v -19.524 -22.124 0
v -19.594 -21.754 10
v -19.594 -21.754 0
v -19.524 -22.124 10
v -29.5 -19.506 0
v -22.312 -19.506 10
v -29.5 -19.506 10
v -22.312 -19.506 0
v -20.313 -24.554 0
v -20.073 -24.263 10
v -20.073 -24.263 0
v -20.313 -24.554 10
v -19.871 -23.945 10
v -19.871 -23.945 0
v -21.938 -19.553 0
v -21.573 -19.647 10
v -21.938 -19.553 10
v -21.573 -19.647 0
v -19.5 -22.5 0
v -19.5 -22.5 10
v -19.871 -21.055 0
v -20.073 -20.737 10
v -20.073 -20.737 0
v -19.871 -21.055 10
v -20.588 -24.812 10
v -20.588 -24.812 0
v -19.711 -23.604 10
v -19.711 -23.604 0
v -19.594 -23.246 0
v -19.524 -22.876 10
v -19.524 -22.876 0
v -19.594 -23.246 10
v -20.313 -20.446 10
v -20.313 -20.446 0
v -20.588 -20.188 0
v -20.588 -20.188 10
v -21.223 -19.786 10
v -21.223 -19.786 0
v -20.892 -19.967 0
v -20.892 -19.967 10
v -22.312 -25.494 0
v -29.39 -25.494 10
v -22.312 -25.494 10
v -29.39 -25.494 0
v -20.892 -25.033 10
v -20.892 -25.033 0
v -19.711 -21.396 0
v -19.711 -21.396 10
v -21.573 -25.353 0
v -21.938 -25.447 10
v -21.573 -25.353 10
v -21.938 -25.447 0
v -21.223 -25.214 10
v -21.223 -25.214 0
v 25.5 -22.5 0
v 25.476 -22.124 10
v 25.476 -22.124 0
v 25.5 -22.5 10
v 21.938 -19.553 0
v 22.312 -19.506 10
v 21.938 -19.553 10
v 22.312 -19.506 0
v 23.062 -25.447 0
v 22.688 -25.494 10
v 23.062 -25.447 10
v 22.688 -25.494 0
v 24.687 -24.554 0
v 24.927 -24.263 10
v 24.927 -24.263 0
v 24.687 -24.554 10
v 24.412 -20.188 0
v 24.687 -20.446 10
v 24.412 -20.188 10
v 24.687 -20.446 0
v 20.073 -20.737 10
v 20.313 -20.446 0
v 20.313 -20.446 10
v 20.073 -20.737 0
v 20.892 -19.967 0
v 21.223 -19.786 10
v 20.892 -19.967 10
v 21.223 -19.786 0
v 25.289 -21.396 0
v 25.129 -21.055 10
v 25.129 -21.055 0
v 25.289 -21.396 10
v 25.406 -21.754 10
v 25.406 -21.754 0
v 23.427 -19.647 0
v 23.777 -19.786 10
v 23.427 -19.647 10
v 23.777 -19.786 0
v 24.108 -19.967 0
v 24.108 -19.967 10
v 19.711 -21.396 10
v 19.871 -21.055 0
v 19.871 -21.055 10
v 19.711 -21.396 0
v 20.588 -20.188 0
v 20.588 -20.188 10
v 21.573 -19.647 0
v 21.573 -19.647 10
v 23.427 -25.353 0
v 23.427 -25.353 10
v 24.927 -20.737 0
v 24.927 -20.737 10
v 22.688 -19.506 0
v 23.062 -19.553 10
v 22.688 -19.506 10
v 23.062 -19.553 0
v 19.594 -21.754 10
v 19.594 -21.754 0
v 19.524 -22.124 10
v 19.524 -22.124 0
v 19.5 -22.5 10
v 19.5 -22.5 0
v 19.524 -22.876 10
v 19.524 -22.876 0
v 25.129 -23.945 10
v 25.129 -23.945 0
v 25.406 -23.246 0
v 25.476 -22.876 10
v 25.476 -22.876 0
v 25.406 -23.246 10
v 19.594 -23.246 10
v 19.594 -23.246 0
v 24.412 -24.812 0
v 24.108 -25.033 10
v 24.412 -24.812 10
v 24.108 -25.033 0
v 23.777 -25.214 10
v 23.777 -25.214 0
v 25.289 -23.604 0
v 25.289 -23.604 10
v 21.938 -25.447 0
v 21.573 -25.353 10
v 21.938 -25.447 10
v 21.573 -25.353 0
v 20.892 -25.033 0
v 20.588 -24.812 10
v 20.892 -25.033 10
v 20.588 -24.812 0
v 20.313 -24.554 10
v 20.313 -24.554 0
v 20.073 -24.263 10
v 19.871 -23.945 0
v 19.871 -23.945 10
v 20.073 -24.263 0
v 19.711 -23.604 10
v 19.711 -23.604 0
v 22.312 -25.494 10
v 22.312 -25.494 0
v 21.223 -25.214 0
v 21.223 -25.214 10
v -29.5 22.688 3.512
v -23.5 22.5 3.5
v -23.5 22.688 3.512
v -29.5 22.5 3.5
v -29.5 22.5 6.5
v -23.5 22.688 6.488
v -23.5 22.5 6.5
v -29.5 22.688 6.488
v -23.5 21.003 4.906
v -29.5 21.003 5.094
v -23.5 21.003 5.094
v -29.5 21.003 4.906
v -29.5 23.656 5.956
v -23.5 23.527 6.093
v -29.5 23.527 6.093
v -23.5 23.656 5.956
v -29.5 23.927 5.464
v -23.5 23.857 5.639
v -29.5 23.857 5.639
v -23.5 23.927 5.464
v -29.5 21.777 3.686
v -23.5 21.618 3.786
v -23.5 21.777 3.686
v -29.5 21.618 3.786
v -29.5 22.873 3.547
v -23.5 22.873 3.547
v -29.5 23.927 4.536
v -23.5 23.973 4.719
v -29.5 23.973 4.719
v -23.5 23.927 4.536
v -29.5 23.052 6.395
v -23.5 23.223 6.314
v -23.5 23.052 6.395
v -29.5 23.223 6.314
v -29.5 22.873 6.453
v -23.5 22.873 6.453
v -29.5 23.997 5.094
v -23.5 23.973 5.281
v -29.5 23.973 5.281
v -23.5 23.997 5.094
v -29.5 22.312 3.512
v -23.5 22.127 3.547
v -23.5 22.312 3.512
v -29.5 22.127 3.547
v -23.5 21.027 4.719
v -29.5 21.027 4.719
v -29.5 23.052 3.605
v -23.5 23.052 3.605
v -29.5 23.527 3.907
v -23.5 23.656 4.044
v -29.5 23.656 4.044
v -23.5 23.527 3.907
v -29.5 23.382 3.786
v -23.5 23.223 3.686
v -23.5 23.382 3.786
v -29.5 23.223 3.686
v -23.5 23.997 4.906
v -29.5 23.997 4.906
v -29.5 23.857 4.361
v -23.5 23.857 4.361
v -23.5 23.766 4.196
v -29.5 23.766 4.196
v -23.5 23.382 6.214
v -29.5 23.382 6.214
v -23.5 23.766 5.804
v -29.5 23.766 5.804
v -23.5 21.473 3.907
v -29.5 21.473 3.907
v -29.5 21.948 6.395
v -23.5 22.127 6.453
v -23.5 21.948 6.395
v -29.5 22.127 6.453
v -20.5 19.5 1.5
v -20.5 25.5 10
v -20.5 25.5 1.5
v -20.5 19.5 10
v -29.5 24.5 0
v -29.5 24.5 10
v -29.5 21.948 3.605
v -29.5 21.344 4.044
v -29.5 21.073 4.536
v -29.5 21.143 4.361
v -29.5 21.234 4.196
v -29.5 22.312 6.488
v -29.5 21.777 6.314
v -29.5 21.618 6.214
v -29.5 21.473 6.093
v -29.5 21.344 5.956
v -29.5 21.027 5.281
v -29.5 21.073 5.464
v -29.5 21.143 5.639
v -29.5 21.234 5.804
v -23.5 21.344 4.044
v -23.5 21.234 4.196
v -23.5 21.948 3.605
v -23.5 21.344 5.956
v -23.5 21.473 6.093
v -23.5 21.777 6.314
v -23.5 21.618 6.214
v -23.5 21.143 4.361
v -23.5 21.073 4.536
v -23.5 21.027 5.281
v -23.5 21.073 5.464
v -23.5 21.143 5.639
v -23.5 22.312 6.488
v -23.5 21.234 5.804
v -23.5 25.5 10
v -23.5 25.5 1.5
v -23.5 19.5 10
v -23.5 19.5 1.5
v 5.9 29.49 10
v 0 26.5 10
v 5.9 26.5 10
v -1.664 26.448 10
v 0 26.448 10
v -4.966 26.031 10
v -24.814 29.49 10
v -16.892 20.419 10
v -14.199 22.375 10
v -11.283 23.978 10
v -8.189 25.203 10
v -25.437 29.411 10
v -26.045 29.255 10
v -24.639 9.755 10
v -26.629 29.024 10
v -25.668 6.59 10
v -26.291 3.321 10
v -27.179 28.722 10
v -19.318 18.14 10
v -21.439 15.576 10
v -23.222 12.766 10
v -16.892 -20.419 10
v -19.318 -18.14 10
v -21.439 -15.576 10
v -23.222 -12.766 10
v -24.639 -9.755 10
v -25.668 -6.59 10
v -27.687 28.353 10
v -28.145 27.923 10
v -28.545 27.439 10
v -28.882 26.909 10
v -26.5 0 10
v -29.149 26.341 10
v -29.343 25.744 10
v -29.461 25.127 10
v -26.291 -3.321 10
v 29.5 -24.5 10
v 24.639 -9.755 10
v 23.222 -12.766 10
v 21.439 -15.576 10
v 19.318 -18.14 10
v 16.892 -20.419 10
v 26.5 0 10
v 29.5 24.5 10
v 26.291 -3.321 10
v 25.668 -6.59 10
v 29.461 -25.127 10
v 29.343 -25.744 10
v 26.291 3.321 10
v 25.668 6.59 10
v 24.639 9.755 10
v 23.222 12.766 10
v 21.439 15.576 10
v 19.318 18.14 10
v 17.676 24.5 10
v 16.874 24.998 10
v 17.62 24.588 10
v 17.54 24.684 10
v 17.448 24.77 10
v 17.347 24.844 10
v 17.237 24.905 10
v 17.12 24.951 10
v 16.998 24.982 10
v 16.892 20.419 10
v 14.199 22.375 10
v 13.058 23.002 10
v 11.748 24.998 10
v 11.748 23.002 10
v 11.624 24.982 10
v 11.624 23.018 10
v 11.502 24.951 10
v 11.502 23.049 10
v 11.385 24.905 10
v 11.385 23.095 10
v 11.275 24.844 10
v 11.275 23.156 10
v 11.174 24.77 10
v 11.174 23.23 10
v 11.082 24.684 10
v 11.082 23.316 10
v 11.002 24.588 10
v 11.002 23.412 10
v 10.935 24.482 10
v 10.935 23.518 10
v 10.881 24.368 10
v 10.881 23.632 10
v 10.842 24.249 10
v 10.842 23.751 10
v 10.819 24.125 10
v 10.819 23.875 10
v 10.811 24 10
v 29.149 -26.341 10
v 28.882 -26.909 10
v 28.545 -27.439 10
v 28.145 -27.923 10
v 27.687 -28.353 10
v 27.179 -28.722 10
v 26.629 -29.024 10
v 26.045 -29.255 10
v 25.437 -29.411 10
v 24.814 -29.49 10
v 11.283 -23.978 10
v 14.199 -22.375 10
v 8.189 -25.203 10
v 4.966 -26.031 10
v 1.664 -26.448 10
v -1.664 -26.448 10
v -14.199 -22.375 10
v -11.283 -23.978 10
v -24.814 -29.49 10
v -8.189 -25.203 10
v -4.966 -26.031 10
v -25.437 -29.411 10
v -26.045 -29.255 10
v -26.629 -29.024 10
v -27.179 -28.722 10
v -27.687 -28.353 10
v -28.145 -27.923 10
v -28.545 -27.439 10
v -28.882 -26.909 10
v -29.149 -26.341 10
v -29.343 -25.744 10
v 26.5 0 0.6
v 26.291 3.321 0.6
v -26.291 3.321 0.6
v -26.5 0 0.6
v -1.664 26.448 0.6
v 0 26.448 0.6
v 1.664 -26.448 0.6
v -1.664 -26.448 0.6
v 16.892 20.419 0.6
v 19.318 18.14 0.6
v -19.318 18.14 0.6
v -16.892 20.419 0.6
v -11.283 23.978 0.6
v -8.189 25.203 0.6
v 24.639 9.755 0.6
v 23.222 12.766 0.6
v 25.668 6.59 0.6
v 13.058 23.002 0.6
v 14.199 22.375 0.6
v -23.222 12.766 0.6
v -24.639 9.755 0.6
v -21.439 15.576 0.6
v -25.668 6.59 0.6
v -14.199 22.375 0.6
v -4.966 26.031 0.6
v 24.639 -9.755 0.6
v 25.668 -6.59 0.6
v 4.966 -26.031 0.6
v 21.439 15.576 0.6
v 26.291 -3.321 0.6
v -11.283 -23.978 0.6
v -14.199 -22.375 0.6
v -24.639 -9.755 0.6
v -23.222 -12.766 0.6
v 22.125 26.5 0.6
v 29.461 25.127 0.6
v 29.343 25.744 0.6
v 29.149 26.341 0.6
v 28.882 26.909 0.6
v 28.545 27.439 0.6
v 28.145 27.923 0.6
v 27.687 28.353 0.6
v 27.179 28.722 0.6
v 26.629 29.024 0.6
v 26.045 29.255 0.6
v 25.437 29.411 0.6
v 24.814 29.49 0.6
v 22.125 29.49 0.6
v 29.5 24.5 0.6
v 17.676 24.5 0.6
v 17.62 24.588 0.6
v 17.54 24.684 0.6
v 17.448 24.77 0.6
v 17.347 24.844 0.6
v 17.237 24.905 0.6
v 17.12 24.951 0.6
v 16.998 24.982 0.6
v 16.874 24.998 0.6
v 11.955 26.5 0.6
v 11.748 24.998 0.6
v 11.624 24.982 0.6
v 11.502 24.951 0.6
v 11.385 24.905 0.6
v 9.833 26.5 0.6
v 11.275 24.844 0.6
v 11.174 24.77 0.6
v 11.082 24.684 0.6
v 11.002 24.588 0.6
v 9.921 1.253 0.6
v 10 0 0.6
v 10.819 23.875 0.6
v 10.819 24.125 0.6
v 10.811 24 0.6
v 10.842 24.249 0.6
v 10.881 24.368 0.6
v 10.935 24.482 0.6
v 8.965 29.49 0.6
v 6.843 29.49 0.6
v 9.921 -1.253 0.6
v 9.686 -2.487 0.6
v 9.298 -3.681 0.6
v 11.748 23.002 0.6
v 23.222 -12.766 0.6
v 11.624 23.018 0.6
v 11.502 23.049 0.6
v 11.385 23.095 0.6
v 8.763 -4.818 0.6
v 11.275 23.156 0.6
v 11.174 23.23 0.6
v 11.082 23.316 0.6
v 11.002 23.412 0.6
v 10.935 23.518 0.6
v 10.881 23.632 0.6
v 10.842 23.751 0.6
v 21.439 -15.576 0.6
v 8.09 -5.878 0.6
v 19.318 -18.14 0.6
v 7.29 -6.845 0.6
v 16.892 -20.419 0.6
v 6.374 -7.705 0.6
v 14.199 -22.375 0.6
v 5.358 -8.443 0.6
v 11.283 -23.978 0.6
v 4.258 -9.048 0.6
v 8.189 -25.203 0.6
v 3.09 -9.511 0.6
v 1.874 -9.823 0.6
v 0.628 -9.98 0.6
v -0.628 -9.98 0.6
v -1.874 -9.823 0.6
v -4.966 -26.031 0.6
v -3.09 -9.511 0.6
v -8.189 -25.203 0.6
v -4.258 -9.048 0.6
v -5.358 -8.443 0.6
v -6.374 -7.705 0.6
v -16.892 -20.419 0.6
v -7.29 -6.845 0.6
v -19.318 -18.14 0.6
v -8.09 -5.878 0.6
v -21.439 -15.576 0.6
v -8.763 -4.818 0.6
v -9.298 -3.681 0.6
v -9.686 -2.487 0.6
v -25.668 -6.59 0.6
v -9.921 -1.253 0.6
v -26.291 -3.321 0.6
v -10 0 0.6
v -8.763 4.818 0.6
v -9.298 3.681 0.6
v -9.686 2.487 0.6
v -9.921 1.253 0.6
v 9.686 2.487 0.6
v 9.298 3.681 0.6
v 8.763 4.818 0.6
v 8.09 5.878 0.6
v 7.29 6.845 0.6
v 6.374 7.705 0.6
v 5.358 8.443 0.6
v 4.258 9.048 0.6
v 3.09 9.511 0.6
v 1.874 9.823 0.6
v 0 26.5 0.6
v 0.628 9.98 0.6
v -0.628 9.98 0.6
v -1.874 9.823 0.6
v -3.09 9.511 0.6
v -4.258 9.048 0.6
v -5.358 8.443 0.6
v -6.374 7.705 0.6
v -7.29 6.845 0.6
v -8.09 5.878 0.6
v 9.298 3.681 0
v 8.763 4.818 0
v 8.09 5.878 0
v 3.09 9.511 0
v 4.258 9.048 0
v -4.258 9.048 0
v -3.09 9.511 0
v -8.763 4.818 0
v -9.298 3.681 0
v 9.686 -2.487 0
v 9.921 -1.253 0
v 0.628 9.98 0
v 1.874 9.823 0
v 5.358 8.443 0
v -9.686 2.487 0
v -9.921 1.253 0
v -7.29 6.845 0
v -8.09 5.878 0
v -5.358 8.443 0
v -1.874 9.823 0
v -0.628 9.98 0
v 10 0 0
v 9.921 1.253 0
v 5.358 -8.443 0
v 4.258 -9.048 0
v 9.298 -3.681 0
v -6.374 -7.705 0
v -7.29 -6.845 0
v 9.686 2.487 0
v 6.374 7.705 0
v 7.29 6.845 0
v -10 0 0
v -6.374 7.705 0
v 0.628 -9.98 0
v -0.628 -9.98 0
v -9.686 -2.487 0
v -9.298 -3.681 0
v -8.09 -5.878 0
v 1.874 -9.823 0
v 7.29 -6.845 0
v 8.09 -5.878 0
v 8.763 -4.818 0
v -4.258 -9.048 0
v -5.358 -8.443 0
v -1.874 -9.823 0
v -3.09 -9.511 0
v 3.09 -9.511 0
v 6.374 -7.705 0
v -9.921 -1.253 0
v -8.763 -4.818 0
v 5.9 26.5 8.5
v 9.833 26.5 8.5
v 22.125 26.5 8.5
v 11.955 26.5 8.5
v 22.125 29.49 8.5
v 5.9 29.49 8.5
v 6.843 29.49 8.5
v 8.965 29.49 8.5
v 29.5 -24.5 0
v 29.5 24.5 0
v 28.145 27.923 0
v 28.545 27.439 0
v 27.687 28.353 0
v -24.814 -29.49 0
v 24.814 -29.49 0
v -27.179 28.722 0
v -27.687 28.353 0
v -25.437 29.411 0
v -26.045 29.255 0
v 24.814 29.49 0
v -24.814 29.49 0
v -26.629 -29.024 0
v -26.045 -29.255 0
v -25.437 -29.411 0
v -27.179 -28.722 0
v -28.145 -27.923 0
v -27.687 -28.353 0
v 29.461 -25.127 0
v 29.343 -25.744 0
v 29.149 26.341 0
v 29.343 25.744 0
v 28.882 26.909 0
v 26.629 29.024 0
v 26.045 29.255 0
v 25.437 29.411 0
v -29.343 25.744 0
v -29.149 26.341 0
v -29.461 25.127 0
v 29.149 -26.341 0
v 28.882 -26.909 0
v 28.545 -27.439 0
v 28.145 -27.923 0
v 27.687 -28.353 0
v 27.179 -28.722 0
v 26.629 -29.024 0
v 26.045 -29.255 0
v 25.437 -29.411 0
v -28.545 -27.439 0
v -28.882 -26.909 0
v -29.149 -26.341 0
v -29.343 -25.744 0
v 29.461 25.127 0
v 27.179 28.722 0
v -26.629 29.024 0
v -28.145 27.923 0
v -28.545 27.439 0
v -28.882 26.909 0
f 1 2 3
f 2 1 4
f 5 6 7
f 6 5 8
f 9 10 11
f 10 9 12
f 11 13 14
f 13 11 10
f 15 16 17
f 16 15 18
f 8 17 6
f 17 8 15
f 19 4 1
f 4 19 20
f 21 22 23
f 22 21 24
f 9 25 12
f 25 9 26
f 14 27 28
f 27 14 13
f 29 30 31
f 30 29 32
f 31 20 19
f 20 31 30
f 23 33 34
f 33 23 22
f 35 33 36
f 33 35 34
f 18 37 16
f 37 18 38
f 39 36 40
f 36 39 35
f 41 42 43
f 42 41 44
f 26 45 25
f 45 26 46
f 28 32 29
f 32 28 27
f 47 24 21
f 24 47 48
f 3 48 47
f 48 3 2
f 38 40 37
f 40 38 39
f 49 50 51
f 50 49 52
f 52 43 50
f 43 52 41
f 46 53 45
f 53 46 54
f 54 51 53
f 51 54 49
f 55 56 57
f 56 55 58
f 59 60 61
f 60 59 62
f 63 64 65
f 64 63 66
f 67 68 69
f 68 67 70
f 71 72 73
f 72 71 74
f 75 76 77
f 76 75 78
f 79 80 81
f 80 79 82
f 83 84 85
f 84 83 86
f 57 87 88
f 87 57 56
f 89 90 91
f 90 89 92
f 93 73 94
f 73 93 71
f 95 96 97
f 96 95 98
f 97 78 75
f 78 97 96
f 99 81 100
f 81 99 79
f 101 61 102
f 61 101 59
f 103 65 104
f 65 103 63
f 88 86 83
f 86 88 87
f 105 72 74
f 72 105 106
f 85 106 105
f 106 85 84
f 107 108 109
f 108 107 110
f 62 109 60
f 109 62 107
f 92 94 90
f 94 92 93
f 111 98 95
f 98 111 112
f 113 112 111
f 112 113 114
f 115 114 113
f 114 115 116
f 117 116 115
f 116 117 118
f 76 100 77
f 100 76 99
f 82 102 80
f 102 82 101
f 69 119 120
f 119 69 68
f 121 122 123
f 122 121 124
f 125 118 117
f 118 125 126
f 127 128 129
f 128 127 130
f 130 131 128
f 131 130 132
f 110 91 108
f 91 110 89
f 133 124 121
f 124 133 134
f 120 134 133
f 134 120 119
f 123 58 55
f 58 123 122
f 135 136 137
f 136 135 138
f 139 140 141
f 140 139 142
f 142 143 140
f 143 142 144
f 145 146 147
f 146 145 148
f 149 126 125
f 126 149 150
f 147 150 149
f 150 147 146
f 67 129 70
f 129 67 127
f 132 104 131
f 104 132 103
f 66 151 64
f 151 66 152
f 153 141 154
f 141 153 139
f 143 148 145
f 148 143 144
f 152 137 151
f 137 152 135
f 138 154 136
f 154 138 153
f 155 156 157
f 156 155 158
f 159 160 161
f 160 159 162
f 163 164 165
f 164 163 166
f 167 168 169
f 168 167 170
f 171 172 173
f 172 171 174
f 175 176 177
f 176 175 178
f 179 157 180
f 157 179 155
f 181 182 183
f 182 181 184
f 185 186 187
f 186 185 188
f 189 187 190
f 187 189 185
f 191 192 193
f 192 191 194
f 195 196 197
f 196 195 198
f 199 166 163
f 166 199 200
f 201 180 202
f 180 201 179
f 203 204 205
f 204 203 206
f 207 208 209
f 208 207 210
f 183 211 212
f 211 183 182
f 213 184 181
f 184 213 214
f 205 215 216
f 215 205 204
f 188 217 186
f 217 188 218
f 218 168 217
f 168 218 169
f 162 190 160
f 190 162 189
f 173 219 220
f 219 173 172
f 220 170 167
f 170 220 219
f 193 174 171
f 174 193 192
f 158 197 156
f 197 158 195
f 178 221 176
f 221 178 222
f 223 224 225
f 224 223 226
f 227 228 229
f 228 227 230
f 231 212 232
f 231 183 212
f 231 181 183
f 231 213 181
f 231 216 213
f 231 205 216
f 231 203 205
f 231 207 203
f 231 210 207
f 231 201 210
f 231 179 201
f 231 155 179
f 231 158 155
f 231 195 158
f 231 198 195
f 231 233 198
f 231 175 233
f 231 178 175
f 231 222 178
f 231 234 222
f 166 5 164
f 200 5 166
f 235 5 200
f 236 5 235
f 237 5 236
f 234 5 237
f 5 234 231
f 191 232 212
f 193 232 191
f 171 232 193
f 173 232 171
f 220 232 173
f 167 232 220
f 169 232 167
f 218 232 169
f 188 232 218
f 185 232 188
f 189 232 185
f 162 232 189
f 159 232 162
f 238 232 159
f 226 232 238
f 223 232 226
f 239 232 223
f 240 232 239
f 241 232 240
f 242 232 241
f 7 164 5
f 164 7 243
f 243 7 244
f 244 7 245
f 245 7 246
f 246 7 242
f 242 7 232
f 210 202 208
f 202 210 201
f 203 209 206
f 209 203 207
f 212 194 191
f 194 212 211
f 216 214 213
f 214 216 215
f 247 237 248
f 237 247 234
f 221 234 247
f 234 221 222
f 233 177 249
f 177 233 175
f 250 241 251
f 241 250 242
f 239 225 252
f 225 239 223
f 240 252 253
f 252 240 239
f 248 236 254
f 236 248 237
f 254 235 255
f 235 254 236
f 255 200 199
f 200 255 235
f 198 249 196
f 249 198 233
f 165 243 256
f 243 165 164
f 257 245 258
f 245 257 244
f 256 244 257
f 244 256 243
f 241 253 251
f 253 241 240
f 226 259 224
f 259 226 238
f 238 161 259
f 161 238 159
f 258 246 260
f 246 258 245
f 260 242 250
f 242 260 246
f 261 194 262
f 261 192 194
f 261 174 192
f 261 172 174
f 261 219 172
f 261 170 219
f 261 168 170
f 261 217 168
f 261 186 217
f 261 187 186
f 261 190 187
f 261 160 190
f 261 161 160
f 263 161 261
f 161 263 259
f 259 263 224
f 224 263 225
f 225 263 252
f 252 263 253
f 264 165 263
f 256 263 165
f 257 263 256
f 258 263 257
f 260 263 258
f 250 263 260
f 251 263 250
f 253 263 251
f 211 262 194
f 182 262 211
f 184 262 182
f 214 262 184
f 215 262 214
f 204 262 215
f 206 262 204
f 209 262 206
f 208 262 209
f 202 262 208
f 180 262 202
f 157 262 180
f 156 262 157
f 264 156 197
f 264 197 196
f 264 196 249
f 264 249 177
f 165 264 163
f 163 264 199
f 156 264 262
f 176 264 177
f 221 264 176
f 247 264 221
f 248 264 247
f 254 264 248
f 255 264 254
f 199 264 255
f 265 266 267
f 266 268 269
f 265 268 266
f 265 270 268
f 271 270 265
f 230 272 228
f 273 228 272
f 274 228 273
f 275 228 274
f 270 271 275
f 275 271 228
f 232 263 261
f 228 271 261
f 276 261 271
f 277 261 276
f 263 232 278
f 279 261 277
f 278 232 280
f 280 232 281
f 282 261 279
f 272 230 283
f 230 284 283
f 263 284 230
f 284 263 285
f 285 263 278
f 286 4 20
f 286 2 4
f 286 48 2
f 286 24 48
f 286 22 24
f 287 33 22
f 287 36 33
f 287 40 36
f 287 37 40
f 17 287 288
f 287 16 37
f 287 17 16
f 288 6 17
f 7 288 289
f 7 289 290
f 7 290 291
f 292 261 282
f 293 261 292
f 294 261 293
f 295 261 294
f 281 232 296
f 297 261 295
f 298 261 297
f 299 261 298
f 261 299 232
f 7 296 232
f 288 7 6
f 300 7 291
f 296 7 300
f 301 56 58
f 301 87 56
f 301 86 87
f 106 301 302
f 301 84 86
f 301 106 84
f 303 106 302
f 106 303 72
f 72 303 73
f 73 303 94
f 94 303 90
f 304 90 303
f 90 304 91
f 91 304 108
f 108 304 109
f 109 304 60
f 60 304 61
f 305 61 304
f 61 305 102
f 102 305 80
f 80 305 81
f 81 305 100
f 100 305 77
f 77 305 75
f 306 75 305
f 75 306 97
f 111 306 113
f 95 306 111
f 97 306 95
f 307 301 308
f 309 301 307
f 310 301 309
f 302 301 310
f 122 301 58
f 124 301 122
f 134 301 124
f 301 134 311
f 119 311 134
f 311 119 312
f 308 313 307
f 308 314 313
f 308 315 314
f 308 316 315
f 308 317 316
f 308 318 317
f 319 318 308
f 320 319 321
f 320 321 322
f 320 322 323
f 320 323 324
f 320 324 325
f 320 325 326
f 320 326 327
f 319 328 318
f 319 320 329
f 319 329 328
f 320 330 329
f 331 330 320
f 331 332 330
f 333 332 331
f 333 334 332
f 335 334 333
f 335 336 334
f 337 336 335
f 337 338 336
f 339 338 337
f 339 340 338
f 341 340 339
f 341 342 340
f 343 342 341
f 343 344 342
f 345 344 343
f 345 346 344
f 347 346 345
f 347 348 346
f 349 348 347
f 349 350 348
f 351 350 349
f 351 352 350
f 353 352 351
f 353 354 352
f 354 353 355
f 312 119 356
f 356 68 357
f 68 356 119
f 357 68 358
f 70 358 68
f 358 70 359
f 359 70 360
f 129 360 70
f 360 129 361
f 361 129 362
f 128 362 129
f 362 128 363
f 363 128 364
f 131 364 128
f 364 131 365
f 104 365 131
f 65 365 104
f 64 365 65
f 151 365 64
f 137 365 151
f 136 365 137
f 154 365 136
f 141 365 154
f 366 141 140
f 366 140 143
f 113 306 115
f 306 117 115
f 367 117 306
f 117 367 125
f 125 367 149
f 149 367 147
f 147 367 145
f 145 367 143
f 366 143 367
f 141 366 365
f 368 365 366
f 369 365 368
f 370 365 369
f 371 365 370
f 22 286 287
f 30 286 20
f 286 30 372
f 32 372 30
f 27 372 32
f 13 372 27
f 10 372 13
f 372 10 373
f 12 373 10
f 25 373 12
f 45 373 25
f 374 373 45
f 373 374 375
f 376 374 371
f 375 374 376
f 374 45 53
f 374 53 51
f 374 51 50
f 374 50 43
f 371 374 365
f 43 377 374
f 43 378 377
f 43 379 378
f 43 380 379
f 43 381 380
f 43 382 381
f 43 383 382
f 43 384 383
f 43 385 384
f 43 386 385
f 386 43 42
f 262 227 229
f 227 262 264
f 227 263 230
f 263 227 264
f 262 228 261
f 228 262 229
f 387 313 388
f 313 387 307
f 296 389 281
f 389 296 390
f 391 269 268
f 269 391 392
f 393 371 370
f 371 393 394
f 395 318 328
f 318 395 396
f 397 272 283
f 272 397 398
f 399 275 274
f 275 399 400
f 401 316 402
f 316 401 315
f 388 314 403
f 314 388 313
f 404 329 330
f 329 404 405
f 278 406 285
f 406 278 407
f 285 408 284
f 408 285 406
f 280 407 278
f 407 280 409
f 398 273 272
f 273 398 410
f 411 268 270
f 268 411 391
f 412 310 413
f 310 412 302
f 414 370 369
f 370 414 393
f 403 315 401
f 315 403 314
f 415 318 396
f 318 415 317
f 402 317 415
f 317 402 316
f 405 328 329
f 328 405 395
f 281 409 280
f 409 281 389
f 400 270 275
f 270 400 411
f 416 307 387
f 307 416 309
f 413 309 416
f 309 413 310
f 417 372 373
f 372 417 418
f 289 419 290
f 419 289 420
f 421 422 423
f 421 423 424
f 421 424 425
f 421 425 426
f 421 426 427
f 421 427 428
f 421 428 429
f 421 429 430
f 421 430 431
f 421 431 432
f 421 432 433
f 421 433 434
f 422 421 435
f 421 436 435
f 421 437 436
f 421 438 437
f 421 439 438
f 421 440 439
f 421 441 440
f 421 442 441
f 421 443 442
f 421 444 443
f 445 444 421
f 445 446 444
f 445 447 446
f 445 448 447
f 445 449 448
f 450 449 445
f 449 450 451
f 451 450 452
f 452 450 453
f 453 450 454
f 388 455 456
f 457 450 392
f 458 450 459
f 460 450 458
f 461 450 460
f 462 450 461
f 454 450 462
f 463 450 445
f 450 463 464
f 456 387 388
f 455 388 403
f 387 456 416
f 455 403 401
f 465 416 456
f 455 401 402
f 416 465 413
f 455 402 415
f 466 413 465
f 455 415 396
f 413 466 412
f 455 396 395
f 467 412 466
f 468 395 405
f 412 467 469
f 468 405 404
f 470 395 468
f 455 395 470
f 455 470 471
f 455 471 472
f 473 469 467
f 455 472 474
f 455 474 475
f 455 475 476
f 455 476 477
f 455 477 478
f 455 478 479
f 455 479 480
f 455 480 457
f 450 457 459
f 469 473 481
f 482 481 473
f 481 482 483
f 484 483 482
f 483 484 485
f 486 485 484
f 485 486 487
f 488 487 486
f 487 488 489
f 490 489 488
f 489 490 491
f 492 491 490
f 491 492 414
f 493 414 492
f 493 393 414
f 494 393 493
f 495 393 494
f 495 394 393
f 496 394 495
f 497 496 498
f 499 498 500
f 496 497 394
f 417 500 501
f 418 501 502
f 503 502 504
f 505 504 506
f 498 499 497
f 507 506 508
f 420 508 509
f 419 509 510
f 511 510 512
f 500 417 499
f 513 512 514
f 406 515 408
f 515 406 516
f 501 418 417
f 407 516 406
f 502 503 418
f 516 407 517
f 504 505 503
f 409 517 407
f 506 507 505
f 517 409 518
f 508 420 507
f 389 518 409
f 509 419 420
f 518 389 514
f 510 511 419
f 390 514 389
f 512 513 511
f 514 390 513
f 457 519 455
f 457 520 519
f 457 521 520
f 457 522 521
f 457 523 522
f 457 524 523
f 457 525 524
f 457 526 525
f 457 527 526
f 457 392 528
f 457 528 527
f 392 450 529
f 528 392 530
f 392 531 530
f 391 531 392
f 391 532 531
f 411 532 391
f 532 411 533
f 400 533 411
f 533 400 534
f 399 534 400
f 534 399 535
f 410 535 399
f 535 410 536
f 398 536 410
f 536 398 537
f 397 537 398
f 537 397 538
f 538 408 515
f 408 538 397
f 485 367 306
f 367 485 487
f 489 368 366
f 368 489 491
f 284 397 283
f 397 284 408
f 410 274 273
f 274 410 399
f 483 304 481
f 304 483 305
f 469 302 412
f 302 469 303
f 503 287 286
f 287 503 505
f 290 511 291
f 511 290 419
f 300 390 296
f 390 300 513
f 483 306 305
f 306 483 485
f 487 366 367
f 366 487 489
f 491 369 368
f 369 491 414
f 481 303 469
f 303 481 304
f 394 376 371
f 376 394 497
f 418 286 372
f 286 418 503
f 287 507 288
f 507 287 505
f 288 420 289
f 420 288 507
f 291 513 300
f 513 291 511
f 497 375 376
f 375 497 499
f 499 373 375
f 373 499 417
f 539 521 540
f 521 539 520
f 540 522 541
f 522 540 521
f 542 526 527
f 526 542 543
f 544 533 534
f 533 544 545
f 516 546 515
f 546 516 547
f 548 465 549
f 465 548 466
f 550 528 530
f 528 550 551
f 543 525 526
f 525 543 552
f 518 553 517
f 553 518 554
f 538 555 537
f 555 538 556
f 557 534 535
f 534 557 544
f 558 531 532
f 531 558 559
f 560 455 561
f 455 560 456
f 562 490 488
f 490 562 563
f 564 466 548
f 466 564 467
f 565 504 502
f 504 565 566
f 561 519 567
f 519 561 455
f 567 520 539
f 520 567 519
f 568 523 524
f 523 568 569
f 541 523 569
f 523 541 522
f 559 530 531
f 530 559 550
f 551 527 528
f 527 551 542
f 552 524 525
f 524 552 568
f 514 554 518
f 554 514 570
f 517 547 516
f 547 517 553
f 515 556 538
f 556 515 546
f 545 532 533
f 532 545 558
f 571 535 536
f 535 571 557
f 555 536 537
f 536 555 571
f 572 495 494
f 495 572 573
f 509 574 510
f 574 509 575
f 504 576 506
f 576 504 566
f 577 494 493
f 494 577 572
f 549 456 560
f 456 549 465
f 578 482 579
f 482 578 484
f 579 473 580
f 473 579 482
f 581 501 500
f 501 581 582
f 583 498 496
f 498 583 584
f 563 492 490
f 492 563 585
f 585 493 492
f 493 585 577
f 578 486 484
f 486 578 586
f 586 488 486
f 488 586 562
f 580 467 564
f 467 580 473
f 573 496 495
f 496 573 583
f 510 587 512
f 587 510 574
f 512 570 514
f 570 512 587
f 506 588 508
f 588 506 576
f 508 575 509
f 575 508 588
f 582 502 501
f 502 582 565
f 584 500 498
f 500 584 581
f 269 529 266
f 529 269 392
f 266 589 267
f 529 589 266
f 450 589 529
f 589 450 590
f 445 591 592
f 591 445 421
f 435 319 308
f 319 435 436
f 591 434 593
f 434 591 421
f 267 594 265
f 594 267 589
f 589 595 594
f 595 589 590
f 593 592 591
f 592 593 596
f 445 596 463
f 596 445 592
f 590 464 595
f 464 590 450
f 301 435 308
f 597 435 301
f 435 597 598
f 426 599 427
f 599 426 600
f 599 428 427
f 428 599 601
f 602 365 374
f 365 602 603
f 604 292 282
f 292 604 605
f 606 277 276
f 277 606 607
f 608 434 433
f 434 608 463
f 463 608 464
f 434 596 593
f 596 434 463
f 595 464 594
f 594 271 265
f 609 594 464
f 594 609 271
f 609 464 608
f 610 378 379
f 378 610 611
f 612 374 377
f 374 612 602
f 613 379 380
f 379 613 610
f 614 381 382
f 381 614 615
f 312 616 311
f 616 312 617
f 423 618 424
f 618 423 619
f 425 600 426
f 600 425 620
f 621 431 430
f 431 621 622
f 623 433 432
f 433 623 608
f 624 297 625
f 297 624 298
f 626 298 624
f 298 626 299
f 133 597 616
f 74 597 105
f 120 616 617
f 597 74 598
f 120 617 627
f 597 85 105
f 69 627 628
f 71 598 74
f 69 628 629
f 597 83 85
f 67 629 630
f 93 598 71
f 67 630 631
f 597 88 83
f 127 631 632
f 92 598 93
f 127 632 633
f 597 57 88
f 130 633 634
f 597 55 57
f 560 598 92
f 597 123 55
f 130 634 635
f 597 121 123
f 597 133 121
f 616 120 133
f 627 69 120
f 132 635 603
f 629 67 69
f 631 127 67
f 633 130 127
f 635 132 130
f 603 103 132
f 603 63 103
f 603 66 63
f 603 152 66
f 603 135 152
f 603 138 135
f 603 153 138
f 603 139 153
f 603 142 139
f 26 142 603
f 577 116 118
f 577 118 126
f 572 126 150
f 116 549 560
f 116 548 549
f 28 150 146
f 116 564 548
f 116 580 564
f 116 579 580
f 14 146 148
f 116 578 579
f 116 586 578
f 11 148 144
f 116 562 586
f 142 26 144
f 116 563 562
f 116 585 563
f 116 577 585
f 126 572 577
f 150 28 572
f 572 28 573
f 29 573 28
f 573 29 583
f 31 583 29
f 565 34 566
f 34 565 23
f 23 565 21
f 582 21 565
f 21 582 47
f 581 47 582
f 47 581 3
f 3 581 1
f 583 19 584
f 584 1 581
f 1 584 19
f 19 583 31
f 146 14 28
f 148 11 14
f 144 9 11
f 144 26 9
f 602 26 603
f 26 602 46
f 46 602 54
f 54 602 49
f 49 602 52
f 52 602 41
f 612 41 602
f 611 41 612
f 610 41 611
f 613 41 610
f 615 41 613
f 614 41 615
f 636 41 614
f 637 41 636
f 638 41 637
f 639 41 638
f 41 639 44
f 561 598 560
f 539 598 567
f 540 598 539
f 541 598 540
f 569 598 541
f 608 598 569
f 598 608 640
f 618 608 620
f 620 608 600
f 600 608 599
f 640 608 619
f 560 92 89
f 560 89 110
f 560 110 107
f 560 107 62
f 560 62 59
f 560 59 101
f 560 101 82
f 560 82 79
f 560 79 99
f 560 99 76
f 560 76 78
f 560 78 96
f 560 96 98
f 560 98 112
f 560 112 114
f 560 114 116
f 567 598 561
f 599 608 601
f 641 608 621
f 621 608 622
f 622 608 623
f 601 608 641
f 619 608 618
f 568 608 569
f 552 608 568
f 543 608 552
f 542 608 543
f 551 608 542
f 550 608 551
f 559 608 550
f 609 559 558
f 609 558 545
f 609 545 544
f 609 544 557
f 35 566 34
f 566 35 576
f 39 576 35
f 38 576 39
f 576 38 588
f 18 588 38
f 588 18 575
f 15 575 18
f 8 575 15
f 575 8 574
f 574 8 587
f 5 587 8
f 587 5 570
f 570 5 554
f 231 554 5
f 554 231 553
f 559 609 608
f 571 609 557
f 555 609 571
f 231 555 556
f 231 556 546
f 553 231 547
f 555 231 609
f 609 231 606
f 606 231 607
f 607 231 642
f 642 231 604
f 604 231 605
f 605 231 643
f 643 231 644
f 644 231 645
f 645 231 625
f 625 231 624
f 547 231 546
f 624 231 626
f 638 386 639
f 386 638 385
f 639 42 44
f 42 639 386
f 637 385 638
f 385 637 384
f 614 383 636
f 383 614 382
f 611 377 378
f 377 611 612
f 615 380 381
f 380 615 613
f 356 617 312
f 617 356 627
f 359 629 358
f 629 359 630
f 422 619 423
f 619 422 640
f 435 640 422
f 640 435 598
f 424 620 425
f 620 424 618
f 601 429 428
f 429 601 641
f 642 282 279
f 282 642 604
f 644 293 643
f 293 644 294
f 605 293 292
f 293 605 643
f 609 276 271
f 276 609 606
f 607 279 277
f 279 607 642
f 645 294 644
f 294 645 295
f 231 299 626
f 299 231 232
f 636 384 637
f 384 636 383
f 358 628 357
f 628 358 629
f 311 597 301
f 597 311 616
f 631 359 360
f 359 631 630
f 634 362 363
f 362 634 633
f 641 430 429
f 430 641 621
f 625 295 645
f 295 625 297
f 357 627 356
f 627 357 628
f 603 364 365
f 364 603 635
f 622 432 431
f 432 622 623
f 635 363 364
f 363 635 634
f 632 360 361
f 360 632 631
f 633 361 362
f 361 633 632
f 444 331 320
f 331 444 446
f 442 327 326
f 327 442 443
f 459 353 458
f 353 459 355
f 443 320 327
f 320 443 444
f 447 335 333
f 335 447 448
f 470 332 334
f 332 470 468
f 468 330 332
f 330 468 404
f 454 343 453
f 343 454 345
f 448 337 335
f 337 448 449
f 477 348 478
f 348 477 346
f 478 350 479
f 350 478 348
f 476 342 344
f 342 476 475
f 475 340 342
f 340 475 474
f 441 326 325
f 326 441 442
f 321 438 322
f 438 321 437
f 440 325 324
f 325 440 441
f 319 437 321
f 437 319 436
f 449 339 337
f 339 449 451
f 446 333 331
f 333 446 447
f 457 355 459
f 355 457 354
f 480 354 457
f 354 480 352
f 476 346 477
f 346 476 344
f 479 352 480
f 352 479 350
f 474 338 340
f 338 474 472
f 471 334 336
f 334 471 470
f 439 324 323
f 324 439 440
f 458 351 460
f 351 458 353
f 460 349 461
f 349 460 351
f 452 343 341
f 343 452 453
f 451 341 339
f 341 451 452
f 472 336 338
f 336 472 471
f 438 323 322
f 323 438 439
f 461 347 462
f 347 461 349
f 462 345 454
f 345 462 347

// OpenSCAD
$fn = 50;


union() {
	difference() {
		union() {
			translate(v = [0, 0, 0]) {
				rotate(a = [0, 0, 0]) {
					hull() {
						translate(v = [-24.5000000000, 24.5000000000, 0]) {
							rotate(a = [0, 0, 0]) {
								translate(v = [0, 0, 0]) {
									rotate(a = [0, 0, 0]) {
										cylinder(h = 10, r = 5);
									}
								}
							}
						}
						translate(v = [24.5000000000, 24.5000000000, 0]) {
							rotate(a = [0, 0, 0]) {
								translate(v = [0, 0, 0]) {
									rotate(a = [0, 0, 0]) {
										cylinder(h = 10, r = 5);
									}
								}
							}
						}
						translate(v = [-24.5000000000, -24.5000000000, 0]) {
							rotate(a = [0, 0, 0]) {
								translate(v = [0, 0, 0]) {
									rotate(a = [0, 0, 0]) {
										cylinder(h = 10, r = 5);
									}
								}
							}
						}
						translate(v = [24.5000000000, -24.5000000000, 0]) {
							rotate(a = [0, 0, 0]) {
								translate(v = [0, 0, 0]) {
									rotate(a = [0, 0, 0]) {
										cylinder(h = 10, r = 5);
									}
								}
							}
						}
					}
				}
			}
		}
		union() {
			translate(v = [-30.0000000000, -22.5000000000, -125]) {
				rotate(a = [0, 0, 0]) {
					hull() {
						translate(v = [7.5000000000, 0, 0]) {
							rotate(a = [0, 0, 0]) {
								translate(v = [0, 0, 0]) {
									rotate(a = [0, 0, 0]) {
										cylinder(h = 250, r = 3.0000000000);
									}
								}
							}
						}
						translate(v = [-7.5000000000, 0, 0]) {
							rotate(a = [0, 0, 0]) {
								translate(v = [0, 0, 0]) {
									rotate(a = [0, 0, 0]) {
										cylinder(h = 250, r = 3.0000000000);
									}
								}
							}
						}
					}
				}
			}
			translate(v = [22.5000000000, -22.5000000000, -125.0000000000]) {
				rotate(a = [0, 0, 0]) {
					cylinder(h = 250, r = 3.0000000000);
				}
			}
			translate(v = [-29.5000000000, 22.5000000000, 5.0000000000]) {
				rotate(a = [0, 90, 0]) {
					cylinder(h = 9, r = 1.5000000000);
				}
			}
			translate(v = [-23.5000000000, 19.5000000000, 1.5000000000]) {
				rotate(a = [0, 0, 0]) {
					cube(size = [3, 6, 8.5000000000]);
				}
			}
			translate(v = [0, 0, 0.6000000000]) {
				rotate(a = [0, 0, 0]) {
					cylinder(h = 12.4000000000, r = 26.5000000000);
				}
			}
			translate(v = [0, 0, -5.0000000000]) {
				rotate(a = [0, 0, 0]) {
					cylinder(h = 10, r = 10.0000000000);
				}
			}
			translate(v = [0.0000000000, 24.5000000000, 0.6000000000]) {
				rotate(a = [0, 0, 0]) {
					cube(size = [29.5000000000, 2, 12.4000000000]);
				}
			}
			translate(v = [22.1250000000, 24.5000000000, 0.6000000000]) {
				rotate(a = [0, 0, 0]) {
					cube(size = [7.3750000000, 5, 12.4000000000]);
				}
			}
			translate(v = [5.9000000000, 24.5000000000, 8.5000000000]) {
				rotate(a = [0, 0, 0]) {
					cube(size = [23.6000000000, 5, 1.5000000000]);
				}
			}
			translate(v = [6.0833333333, 30.2500000000, 0.6000000000]) {
				rotate(a = [0, 0, -45]) {
					cube(size = [7.5000000000, 1.5000000000, 12.4000000000]);
				}
			}
			translate(v = [5.0610000000, 23.0000000000, 0.6000000000]) {
				rotate(a = [0, 0, 0]) {
					cube(size = [7.5000000000, 2, 9.4000000000]);
				}
			}
		}
	}
	union() {
		translate(v = [14.3110000000, 24.0000000000, 0]) {
			rotate(a = [0, 0, 0]) {
				hull() {
					translate(v = [2.5000000000, 0, 0]) {
						rotate(a = [0, 0, 0]) {
							translate(v = [0, 0, 0]) {
								rotate(a = [0, 0, 0]) {
									cylinder(h = 10, r = 1.0000000000);
								}
							}
						}
					}
					translate(v = [-2.5000000000, 0, 0]) {
						rotate(a = [0, 0, 0]) {
							translate(v = [0, 0, 0]) {
								rotate(a = [0, 0, 0]) {
									cylinder(h = 10, r = 1.0000000000);
								}
							}
						}
					}
				}
			}
		}
	}
}
